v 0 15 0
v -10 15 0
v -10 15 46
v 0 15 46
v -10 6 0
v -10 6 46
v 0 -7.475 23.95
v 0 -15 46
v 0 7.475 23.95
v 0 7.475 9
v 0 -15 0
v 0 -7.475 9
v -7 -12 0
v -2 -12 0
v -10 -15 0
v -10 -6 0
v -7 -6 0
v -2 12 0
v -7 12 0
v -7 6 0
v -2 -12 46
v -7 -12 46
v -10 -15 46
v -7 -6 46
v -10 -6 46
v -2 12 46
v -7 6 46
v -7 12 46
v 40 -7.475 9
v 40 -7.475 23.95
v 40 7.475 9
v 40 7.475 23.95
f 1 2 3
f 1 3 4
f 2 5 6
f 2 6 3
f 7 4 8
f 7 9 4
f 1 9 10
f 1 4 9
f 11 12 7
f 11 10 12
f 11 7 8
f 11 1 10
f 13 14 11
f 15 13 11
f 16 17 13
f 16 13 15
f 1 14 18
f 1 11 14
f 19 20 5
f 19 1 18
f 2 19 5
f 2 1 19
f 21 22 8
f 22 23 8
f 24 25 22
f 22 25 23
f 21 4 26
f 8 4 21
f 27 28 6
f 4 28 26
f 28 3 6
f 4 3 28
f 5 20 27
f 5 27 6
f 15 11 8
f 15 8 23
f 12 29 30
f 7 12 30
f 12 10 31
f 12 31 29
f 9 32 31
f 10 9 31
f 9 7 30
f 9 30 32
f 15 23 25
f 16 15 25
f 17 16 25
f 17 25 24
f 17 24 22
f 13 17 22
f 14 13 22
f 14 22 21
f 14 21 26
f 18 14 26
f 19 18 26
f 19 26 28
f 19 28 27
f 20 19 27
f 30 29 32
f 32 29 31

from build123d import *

# Parameters (mm, degrees)
PAD_DEPTH    = 46
SKETCH002_W  = 14.95
SKETCH002_H  = 14.95
PAD001_DEPTH = 40


with BuildPart() as part:
    # Sketch → Pad (new body)
    with BuildSketch(Plane.XY):
        Polygon((-10, 15), (0, 15), (0, -15), (-10, -15), (-10, -6), (-7, -6), (-7, -12), (-2, -12), (-2, 12), (-7, 12), (-7, 6), (-10, 6), align=None)
    extrude(amount=PAD_DEPTH)

    # Sketch002 (on Face2 of Pad) → Pad001 (join)
    with BuildSketch(Plane.YZ):
        with Locations((0, 16.475)):
            Rectangle(SKETCH002_W, SKETCH002_H)
    extrude(amount=PAD001_DEPTH)


solid = part.part
